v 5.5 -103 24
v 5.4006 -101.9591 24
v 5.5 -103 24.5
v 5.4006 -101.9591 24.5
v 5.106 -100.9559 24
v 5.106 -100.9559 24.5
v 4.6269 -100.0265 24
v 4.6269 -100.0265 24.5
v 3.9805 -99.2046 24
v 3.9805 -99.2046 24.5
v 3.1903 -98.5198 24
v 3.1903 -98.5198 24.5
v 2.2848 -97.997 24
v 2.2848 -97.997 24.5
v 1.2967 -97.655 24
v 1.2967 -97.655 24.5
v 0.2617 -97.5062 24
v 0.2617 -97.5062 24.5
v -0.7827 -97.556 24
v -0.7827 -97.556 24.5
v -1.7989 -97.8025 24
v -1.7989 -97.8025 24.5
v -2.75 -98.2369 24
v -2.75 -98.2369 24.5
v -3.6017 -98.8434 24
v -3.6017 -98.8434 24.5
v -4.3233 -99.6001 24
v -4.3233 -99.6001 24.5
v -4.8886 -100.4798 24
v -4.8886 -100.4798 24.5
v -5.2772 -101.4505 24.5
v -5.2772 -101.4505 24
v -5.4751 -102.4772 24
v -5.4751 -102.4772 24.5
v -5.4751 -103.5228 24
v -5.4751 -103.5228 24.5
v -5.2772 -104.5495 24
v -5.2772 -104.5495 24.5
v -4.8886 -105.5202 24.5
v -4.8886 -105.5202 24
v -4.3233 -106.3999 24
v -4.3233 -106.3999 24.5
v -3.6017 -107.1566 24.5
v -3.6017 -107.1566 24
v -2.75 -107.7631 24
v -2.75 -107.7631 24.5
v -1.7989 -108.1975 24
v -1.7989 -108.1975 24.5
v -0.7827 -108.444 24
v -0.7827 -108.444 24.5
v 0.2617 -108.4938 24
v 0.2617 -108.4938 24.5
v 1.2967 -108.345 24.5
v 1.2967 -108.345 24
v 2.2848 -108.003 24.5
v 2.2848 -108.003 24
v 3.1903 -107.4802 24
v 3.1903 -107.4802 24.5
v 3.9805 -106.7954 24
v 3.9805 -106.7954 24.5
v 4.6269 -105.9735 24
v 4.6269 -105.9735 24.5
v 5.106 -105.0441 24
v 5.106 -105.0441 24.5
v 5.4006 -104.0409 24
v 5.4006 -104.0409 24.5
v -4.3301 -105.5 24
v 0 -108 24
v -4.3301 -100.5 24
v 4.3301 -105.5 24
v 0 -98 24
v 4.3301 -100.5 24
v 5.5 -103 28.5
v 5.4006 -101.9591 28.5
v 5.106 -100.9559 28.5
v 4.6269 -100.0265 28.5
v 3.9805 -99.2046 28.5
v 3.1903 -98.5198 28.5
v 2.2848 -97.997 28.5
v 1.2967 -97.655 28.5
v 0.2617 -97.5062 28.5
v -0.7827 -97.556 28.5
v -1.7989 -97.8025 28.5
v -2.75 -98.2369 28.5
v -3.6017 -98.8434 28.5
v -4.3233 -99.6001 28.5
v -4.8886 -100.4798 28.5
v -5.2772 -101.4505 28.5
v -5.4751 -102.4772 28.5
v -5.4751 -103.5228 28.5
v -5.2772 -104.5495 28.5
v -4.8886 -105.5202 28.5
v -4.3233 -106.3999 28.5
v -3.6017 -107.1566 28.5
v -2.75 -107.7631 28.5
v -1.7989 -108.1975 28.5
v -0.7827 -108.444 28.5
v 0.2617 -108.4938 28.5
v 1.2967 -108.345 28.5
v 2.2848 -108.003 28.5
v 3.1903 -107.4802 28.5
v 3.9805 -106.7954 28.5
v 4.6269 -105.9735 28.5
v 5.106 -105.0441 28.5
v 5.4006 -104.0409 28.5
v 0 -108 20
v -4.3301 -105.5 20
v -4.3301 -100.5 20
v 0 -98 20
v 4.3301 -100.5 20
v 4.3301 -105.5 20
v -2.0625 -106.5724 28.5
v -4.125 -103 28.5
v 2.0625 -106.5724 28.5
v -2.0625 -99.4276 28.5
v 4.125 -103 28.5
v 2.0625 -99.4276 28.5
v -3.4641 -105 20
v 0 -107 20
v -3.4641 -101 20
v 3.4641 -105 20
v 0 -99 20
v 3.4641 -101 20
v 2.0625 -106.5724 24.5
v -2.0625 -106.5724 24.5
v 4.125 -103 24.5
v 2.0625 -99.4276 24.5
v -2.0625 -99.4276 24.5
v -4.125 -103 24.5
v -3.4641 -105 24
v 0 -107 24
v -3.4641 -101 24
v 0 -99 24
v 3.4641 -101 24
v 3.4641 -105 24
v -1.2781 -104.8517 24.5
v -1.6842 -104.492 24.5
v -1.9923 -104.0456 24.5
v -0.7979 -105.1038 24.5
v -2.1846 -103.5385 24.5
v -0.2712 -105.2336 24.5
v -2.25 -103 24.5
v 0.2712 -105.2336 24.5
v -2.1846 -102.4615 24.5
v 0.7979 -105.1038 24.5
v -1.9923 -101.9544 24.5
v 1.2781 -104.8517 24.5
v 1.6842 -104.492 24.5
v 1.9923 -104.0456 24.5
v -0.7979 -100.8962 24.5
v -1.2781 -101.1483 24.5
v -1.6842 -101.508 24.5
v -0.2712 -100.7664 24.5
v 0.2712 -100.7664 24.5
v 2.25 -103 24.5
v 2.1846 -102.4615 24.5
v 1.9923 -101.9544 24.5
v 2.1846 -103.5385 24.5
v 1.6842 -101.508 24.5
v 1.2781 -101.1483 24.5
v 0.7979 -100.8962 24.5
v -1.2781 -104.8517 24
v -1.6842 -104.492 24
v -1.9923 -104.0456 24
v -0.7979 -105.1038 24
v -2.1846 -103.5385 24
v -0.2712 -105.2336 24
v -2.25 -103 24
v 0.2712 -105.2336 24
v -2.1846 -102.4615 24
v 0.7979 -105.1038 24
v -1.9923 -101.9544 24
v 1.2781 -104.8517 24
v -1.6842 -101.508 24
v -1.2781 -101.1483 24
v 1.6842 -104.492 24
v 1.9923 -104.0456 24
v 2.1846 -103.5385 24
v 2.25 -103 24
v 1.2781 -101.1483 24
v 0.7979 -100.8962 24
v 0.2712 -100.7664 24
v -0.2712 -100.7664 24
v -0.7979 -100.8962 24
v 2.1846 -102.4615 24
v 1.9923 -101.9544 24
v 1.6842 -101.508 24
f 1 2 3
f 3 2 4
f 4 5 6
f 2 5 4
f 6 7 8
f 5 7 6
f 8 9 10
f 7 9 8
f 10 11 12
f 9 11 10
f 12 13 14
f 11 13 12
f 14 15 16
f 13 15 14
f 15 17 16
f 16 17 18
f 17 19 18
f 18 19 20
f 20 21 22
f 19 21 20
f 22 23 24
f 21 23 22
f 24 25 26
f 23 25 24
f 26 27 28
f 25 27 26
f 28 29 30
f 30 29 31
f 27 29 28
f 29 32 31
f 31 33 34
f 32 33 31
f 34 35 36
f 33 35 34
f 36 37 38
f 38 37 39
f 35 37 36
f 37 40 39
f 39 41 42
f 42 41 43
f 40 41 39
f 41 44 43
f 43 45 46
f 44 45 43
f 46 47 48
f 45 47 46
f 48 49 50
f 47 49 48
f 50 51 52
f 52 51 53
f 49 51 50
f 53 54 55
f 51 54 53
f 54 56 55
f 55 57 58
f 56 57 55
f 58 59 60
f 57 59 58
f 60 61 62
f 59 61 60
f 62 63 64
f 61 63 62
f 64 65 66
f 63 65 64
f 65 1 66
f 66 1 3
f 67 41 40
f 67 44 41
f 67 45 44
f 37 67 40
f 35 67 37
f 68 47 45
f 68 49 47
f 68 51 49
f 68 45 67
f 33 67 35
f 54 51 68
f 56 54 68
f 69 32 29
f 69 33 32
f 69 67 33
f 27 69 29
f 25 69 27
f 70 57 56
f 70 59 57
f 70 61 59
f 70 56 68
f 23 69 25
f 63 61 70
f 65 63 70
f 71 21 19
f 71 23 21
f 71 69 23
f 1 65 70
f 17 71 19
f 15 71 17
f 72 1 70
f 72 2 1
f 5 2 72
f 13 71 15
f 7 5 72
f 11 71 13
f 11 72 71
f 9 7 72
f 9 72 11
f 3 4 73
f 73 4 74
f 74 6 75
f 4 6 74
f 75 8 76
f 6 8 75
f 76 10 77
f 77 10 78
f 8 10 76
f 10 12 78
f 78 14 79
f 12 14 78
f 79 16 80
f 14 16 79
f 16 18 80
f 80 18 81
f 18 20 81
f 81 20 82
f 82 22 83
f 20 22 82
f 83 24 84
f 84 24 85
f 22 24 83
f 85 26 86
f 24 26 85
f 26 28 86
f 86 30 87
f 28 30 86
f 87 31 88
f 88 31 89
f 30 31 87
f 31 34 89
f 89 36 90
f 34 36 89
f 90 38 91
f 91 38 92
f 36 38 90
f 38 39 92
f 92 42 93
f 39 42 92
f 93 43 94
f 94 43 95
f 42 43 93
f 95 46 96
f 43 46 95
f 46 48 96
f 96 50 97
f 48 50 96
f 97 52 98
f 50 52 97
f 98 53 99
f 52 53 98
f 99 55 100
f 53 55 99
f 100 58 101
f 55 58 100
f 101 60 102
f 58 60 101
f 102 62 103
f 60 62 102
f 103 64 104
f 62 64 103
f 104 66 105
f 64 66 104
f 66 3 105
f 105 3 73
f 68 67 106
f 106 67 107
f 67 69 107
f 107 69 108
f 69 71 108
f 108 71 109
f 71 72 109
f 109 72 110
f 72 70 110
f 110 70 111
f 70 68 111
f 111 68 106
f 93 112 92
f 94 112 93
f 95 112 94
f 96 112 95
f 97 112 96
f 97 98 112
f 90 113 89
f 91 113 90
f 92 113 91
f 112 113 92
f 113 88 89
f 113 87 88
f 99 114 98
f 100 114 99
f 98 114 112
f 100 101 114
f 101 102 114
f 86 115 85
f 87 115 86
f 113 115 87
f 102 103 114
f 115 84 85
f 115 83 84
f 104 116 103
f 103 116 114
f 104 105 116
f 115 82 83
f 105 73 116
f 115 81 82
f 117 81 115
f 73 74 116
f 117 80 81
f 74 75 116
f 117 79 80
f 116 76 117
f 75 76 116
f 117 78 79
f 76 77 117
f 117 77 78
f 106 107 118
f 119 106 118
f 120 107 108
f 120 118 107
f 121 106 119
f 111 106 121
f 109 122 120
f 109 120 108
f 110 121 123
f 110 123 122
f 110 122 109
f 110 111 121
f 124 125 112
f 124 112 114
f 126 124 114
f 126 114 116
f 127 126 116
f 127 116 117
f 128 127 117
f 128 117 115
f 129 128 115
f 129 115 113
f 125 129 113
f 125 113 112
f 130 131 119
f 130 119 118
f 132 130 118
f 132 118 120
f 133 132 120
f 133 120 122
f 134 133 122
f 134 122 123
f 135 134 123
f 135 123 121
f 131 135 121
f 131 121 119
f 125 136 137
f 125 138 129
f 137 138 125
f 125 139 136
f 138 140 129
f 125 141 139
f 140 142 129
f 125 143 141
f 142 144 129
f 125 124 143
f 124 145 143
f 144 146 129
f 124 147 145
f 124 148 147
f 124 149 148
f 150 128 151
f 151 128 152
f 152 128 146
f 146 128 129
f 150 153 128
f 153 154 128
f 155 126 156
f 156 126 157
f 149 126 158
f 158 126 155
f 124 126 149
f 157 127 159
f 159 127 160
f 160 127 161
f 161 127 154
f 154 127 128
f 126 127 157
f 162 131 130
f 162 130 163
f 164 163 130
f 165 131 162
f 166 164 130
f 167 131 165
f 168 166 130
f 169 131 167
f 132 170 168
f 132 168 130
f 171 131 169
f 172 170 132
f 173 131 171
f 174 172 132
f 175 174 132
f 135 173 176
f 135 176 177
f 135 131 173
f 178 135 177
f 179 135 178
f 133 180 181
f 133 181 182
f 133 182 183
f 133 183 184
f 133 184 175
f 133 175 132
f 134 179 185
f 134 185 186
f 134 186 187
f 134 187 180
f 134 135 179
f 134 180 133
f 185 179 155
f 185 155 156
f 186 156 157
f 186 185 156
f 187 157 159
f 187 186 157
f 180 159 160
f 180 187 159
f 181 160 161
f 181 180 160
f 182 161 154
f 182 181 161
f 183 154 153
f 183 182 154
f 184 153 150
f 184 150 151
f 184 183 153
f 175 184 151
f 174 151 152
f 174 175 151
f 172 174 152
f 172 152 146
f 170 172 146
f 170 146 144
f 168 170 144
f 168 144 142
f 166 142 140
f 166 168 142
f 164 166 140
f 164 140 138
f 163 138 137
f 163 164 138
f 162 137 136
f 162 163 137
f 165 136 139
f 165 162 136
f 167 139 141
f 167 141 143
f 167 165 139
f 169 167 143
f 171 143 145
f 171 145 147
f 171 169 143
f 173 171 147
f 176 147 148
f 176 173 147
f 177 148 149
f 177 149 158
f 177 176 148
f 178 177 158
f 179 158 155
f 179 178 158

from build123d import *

# Parameters (mm, degrees)
SKETCH165_R             = 5.5
SKETCH165_R_2           = 2.25
PAD071_DEPTH            = 0.5
SKETCH166_R             = 5.5
PAD072_DEPTH            = 4
PAD073_DEPTH            = 4
BODY021_ROLL_ANGLE      = -90
BODY021_PLACEMENT_ANGLE = -180


with BuildPart() as part:
    # Sketch165 → Pad071 (new body)
    with BuildSketch(Plane.XZ):
        Circle(SKETCH165_R)
        Circle(SKETCH165_R_2, mode=Mode.SUBTRACT)
    extrude(amount=PAD071_DEPTH)

    # Sketch166 (on Face4 of Pad071) → Pad072 (join)
    with BuildSketch(Plane.XZ.offset(0.5)):
        Circle(SKETCH166_R)
        Polygon((-2.0625, -3.572355), (2.0625, -3.572355), (4.125, 0), (2.0625, 3.572355), (-2.0625, 3.572355), (-4.125, 0), align=None, mode=Mode.SUBTRACT)
    extrude(amount=PAD072_DEPTH)

    # Sketch167 (on Face2 of Pad072) → Pad073 (join)
    with BuildSketch(Plane(origin=(0, 0, 0), x_dir=(1, 0, 0), z_dir=(0, 1, 0))):
        Polygon((0, 5), (-4.330127, 2.5), (-4.330127, -2.5), (0, -5), (4.330127, -2.5), (4.330127, 2.5), align=None)
        Polygon((0, 4), (-3.464102, 2), (-3.464102, -2), (0, -4), (3.464102, -2), (3.464102, 2), align=None, mode=Mode.SUBTRACT)
    extrude(amount=PAD073_DEPTH)


with BuildPart() as part_1:
    # Body021 roll: moved
    add(part.part.rotate(Axis((0, 0, 0), (1, 0, 0)), BODY021_ROLL_ANGLE))


with BuildPart() as part_2:
    # Body021 placement: moved
    add(part_1.part.moved(Location((0, -103, 24))).rotate(Axis((0, -103, 24), (0, 0, 1)), BODY021_PLACEMENT_ANGLE))


solid = part_2.part
